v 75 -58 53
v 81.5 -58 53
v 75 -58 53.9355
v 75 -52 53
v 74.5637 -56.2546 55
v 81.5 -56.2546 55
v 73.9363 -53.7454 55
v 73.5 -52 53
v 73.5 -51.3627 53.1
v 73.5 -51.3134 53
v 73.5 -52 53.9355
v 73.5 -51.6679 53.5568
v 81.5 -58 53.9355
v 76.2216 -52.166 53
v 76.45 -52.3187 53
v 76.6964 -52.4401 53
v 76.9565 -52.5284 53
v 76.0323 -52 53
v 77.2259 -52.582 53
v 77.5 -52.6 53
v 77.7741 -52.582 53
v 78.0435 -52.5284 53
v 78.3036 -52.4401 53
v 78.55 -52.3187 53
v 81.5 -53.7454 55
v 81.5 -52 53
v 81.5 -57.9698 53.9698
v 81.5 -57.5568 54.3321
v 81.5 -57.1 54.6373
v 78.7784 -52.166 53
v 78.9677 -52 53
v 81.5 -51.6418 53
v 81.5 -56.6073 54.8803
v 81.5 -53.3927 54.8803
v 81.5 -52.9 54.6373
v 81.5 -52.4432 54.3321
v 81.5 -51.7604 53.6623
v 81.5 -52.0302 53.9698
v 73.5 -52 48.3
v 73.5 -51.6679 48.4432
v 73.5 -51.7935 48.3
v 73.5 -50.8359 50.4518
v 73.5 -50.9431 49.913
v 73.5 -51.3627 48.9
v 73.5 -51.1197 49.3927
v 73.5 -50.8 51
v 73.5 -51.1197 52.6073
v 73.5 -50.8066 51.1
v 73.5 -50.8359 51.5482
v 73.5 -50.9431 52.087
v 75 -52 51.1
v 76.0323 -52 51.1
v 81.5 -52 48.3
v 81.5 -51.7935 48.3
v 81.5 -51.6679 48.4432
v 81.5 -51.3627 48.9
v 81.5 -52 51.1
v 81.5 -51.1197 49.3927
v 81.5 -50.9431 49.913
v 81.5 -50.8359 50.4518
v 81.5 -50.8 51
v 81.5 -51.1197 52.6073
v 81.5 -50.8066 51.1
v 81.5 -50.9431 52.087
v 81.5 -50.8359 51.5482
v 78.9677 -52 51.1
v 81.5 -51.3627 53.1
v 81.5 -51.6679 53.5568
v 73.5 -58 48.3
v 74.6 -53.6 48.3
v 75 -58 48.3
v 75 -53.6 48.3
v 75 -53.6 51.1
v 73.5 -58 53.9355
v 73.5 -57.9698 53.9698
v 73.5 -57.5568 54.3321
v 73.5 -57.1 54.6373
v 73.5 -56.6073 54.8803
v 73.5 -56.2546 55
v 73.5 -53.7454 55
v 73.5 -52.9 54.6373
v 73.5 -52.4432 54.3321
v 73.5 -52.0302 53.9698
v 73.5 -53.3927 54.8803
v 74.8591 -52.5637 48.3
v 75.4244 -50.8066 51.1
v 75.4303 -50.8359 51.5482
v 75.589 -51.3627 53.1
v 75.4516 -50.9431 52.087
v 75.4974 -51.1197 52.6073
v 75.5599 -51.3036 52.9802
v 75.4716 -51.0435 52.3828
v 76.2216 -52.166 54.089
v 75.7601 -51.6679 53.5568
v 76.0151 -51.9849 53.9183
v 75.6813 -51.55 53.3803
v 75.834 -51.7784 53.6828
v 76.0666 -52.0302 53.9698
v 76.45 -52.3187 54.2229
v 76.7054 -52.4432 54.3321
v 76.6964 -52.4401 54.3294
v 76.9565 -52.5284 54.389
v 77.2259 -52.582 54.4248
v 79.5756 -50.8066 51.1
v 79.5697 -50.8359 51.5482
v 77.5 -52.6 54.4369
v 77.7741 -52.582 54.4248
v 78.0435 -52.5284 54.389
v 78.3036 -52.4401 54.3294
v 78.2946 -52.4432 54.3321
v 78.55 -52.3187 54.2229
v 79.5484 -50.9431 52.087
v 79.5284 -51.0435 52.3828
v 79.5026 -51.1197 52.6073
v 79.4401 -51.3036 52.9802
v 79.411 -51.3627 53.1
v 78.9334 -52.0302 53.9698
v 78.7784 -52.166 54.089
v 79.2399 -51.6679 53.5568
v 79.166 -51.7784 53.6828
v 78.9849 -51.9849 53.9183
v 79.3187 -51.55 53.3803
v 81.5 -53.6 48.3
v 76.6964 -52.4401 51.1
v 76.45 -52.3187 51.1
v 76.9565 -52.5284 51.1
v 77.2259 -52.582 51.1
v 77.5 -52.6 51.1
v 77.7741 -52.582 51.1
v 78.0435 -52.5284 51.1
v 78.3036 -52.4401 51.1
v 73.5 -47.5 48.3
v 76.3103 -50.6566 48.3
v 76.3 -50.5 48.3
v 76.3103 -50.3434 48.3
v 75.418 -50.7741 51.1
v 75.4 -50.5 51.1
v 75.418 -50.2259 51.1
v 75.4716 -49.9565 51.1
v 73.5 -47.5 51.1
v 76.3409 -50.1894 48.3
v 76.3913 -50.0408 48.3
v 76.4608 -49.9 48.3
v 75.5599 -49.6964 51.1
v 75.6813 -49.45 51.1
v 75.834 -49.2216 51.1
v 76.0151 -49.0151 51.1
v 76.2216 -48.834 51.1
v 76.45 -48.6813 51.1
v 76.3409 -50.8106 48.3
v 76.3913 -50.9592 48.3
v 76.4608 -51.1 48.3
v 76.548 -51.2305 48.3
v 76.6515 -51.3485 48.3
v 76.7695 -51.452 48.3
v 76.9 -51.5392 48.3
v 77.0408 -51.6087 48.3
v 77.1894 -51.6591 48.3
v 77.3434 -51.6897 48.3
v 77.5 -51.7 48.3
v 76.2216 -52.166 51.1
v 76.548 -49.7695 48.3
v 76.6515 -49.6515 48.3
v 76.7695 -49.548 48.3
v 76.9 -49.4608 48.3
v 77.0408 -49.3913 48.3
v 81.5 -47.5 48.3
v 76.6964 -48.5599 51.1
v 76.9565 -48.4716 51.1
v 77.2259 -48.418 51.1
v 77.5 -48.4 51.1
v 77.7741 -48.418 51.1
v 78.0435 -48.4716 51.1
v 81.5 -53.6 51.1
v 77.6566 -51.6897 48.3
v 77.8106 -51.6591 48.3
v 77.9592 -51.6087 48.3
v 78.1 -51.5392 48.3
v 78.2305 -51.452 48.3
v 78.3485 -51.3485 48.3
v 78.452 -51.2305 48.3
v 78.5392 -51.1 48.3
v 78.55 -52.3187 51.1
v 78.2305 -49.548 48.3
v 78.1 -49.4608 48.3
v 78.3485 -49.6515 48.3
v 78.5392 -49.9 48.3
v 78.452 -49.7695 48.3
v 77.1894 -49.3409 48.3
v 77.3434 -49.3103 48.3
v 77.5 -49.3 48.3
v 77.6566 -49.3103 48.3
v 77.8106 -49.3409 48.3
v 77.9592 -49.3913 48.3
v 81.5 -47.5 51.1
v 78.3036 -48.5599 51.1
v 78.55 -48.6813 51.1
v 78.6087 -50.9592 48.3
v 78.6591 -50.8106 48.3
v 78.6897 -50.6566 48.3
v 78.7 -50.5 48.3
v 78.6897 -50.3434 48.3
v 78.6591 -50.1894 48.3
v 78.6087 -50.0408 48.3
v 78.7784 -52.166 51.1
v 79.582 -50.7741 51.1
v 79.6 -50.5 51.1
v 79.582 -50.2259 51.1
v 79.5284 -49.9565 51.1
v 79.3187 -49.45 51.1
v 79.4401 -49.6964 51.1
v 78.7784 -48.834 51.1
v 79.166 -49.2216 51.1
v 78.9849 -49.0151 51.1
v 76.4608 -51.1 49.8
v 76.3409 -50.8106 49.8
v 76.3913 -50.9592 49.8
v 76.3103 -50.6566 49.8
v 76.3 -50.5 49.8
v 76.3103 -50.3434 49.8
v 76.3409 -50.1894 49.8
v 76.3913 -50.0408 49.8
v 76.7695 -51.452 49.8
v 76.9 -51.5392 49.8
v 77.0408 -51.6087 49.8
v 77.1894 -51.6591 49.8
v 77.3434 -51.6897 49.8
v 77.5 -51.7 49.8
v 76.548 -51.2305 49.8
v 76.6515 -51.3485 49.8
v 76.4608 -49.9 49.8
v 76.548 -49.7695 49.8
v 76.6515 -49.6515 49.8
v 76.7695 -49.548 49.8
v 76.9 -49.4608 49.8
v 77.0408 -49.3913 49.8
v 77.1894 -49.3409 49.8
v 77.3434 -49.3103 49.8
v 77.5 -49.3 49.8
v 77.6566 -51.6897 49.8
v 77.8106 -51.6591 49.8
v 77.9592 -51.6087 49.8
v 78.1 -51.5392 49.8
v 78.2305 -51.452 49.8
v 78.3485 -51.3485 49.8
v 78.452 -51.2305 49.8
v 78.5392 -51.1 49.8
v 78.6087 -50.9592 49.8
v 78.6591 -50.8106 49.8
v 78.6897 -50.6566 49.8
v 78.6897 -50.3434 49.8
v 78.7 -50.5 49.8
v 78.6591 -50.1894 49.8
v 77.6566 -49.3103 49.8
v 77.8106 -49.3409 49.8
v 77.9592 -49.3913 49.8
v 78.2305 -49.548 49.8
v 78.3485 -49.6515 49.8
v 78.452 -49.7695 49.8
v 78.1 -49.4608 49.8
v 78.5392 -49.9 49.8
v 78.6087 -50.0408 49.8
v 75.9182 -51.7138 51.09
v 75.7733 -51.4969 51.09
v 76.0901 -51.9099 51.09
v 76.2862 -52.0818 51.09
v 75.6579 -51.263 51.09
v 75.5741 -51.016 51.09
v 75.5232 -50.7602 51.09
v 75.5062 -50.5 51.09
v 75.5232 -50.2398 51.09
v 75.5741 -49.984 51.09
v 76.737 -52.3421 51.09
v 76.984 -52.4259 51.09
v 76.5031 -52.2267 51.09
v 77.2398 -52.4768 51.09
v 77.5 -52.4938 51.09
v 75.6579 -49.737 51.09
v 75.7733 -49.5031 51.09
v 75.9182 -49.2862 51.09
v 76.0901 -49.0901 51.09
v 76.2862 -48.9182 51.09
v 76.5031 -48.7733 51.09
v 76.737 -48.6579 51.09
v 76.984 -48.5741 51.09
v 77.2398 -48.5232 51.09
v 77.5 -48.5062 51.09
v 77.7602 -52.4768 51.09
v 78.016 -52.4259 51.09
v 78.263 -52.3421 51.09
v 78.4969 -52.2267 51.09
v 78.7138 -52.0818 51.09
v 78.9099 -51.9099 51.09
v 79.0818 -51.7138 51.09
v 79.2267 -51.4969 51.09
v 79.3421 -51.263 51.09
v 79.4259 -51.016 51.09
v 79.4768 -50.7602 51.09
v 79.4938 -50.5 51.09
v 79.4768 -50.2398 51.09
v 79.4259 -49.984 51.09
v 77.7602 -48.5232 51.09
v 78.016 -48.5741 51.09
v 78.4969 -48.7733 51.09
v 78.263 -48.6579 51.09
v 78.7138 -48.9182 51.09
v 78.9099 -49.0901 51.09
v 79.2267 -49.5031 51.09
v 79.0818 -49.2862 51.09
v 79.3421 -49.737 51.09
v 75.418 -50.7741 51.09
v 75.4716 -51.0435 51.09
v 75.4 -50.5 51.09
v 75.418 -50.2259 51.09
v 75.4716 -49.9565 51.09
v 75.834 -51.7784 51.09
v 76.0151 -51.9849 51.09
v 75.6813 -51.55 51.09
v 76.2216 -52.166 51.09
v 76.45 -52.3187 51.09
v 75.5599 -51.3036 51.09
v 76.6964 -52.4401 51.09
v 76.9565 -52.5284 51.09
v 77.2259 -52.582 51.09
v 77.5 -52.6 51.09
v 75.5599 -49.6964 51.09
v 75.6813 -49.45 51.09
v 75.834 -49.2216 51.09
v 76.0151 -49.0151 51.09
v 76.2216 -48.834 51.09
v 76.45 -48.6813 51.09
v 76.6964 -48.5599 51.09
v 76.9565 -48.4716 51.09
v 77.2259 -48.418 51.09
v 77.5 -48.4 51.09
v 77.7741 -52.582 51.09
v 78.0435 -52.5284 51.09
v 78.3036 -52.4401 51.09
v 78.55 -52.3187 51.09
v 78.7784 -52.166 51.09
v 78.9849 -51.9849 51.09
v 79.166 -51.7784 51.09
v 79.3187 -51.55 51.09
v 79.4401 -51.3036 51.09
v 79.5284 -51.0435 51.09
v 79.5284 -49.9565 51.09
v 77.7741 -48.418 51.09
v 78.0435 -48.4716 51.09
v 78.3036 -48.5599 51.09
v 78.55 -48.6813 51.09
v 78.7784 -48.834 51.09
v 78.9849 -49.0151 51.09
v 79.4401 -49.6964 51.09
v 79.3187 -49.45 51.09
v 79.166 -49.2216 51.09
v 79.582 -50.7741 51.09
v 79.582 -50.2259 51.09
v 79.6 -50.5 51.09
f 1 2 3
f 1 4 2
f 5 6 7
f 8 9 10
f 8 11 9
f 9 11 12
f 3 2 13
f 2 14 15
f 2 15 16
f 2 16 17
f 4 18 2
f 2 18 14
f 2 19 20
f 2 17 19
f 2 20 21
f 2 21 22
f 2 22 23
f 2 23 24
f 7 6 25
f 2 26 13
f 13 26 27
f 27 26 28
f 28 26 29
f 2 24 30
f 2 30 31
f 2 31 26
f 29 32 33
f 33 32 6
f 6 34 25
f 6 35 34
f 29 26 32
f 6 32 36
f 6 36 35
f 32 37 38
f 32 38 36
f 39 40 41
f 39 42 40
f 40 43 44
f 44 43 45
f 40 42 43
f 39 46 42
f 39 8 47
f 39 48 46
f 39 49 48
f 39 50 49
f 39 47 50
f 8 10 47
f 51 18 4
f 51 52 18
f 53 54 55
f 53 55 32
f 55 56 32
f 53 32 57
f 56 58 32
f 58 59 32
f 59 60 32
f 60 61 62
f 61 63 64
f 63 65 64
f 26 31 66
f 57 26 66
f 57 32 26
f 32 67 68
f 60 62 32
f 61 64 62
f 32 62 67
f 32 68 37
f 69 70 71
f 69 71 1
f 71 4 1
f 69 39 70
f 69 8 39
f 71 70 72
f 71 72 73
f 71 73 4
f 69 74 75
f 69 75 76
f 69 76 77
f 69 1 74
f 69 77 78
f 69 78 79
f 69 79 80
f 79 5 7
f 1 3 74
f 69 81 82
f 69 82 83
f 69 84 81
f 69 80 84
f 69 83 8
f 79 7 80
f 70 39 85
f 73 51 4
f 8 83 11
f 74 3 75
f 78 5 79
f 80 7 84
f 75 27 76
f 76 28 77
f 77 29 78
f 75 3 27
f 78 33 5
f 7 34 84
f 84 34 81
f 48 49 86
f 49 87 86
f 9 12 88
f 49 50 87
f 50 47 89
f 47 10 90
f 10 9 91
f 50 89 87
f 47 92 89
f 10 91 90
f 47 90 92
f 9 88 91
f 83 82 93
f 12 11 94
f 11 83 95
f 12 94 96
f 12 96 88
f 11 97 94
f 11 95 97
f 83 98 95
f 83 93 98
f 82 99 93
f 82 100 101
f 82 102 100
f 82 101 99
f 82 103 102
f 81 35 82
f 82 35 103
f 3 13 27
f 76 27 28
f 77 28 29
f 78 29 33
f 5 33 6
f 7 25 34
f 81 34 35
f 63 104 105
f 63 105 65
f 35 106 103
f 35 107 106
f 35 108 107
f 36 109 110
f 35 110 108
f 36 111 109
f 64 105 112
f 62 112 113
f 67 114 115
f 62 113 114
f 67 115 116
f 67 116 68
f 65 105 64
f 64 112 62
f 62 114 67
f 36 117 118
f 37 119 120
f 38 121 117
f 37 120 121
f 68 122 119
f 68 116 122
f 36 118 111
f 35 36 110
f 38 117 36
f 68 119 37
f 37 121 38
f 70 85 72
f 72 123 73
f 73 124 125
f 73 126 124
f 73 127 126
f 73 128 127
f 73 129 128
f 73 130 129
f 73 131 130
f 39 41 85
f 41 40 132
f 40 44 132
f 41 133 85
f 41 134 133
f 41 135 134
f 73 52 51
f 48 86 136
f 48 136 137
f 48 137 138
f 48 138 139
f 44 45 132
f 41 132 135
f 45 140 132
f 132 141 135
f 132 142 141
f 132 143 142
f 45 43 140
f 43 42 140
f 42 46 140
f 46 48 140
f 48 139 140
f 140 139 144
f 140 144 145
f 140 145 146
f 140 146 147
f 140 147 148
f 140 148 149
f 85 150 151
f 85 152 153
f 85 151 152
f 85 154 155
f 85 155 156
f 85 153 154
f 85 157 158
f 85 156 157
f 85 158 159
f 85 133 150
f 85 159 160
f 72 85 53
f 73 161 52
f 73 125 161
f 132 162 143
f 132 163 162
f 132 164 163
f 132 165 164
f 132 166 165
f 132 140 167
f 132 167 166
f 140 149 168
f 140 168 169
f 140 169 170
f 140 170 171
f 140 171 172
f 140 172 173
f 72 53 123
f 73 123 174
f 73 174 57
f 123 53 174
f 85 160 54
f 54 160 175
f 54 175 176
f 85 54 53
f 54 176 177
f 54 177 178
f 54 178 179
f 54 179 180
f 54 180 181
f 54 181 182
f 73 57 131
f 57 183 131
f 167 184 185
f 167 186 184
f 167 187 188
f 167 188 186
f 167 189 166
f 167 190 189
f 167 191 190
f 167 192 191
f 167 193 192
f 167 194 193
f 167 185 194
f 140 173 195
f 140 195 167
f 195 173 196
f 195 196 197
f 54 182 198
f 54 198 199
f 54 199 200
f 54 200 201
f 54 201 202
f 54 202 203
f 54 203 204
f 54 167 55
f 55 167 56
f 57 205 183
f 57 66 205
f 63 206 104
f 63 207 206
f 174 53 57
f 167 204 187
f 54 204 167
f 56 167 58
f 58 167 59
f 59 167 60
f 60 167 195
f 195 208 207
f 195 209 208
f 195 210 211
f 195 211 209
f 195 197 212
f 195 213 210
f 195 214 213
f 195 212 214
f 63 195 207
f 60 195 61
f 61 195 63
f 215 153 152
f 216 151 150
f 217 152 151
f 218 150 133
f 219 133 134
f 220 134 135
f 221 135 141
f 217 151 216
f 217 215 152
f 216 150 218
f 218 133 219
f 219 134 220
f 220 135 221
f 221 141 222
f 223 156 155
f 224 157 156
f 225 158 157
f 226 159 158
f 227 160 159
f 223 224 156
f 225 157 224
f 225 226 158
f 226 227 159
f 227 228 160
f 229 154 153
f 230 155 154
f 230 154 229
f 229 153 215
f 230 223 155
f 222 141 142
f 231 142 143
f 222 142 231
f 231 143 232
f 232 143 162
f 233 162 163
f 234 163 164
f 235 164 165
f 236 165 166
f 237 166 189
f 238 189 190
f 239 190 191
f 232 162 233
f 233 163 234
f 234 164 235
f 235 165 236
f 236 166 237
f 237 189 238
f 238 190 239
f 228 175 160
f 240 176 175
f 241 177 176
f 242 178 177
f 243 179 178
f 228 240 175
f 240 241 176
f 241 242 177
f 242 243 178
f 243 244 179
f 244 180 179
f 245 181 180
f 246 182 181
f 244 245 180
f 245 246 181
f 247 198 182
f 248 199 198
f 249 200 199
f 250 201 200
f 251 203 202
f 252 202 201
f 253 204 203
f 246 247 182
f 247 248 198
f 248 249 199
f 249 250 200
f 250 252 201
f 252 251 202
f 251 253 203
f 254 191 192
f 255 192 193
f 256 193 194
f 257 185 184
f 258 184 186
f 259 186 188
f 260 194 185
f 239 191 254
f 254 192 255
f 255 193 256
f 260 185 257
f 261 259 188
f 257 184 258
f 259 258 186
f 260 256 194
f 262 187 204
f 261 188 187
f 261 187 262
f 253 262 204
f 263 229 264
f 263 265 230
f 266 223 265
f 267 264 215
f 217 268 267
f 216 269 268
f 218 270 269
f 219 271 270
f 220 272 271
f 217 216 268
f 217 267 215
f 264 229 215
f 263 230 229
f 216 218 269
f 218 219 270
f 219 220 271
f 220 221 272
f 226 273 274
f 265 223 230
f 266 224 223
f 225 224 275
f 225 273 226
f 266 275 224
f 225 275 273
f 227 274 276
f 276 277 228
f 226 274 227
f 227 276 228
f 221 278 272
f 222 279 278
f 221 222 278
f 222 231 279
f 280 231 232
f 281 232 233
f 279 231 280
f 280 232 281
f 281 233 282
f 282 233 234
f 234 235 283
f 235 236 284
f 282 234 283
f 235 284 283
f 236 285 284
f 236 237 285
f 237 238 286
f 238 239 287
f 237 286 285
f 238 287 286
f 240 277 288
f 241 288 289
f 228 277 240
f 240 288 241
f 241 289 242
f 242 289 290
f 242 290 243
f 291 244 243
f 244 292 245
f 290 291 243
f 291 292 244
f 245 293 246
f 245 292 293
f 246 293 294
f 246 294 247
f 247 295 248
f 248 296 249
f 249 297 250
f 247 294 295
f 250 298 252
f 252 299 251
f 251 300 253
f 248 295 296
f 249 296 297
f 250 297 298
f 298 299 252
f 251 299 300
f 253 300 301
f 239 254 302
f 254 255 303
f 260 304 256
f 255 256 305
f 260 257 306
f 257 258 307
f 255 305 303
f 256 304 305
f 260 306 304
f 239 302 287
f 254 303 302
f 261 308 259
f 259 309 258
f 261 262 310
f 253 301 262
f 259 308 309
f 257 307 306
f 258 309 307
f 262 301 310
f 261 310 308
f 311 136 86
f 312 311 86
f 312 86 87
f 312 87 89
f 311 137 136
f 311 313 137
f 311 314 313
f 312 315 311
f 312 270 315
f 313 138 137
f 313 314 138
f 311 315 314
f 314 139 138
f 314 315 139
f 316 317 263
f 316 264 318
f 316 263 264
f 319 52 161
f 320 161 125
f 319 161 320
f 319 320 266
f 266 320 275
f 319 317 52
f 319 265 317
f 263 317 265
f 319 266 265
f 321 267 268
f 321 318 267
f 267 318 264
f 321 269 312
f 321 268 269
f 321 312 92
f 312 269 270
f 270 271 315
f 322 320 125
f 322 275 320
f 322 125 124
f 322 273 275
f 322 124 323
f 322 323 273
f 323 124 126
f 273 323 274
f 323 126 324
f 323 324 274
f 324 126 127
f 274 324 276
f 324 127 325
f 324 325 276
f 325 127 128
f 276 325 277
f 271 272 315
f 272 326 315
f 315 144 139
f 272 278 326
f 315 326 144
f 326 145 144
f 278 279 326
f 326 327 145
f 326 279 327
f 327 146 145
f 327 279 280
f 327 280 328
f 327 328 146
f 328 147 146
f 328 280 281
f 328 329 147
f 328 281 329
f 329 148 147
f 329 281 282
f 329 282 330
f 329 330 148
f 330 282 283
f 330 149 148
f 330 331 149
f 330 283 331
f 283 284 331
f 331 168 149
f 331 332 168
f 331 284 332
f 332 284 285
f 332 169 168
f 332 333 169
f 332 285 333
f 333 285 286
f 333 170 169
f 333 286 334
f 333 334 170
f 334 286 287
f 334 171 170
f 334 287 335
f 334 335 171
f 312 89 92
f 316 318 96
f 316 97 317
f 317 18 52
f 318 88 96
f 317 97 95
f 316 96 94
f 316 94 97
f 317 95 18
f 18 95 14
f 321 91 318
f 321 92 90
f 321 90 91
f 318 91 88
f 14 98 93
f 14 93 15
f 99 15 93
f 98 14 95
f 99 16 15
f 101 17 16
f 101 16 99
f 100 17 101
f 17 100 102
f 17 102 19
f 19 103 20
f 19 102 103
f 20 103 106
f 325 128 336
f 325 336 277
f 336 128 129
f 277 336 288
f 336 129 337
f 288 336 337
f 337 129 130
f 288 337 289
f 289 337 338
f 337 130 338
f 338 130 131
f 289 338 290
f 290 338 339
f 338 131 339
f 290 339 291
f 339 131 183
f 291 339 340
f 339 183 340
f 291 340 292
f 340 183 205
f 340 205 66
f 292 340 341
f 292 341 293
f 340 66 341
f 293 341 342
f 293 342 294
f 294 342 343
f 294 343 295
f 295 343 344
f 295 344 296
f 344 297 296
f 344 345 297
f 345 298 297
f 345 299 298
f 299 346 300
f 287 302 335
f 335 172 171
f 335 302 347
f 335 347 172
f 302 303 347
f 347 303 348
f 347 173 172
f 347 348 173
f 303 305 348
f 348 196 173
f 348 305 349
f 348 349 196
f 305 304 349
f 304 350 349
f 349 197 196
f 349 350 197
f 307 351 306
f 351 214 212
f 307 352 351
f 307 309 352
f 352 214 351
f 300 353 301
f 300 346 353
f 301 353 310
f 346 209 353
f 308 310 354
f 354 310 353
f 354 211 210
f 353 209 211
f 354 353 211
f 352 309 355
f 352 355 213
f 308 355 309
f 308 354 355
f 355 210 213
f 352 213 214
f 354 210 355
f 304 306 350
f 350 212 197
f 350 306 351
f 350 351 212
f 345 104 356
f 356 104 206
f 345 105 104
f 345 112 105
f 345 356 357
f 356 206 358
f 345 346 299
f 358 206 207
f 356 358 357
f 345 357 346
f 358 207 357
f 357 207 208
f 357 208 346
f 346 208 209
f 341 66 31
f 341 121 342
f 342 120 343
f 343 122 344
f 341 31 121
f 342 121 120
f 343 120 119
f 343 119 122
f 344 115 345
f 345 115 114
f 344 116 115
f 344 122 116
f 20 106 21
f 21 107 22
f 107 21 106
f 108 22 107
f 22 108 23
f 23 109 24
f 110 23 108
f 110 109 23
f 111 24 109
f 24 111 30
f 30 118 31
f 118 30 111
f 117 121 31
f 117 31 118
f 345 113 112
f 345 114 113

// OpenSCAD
// file: ../../../cad/v3/hardware.scad
include <params.scad>
use <enclosure.scad>
// PROVISIONAL purchased component envelopes; not production part drawings.
module motor() {
 union() {
  translate([screw_x-6,motor_front-motor_l,motor_bottom]) cube([12,motor_l,10]);
  yrod(screw_x,motor_front-0.1,axis_z,shaft_d,shaft_l+0.1);
  for(x=[screw_x-3,screw_x+3]) translate([x-0.5,motor_front-motor_l-2,motor_bottom+4.5]) cube([1,2.1,1]);
 }
}
module shaft() { yrod(screw_x,motor_front,axis_z,shaft_d,shaft_l); }
module drive_nut(t=0) {
 difference() {
  translate([screw_x,carriage_back+t+nut_slot_y+0.1,axis_z]) rotate([-90,0,0]) union() {
   cylinder(d=nut_af/cos(30),h=nut_height,$fn=6);
   cylinder(d=nut_flange_d,h=nut_flange_t);
  }
  yrod(screw_x,carriage_back+t+nut_slot_y,axis_z,shaft_d+0.2,nut_height+0.2);
 }
}
module battery_holder(raise=0) {
 // Conservative single envelope including cell, contacts and holder.
 translate([93.2,-52,4.5+raise]) cube([22,74,21]);
}
module esp() {
 union() {
  translate([77.5,28,8.3]) cube([17.8,22.5,1.2]);
  translate([78.5,29,9.5]) cube([15.8,20.5,5]);
  translate([81.5,47,9.5]) cube([9,5,3.3]);
 }
}
module power_board() { translate([99,29,8.3]) cube([15,20,7.2]); }
module bridge_board() { translate([98.5,29,20.3]) cube([15,20,7]); }
module oled() {
 union() {
  translate([87.6,53.5,21.5]) cube([27.8,1.6,27.3]);
  translate([88.15,55.1,25]) cube([26.7,1.4,19.3]);
  translate([96.5,50.5,46]) cube([10,3,2.8]);
 }
}
module button() {
 union() {
  xrod(button_panel_x-button_body_l,button_y,button_z,button_body_d,button_body_l);
  xrod(button_panel_x,button_y,button_z,button_flange_d,2);
  xrod(button_panel_x+2,button_y,button_z,12.9,button_face_l-2);
  // Candidate fastening nut envelope; actual nut diameter/thickness to measure.
  difference() {
   xrod(button_panel_x-6,button_y,button_z,17.8,3);
   xrod(button_panel_x-6.1,button_y,button_z,button_hole_d,3.2);
  }
  // Two terminals only; solder and bend radius need physical confirmation.
  for(y=[button_y-2.425,button_y+2.425])
   translate([button_panel_x-button_body_l-button_terminal_l,y-.3,button_z-1]) cube([button_terminal_l,.6,2]);
 }
}
module acrylic() { translate([window_x0-2,window_y0-2,window_pane_z]) cube([window_x1-window_x0+4,window_y1-window_y0+4,window_pane_t]); }
module hinge_pin() { xrod(hinge_pin_x,hinge_y,hinge_z,2,hinge_pin_len); }
module thread_insert(x,y,z) {
 difference() {
  zhole(x,y,z,insert_od,insert_len);
  zhole(x,y,z-.1,2.05,insert_len+.2);
 }
}
module inserts_fixed() {
 for(p=battery_screws) thread_insert(p[0],p[1],2.9);
 for(x=keeper_x) thread_insert(x,keeper_y,44.3);
}
module inserts_lid() {
 for(p=window_clamps) thread_insert(p[0],p[1],window_ear_top);
}
module battery_connector() { translate([91.5,22,12.5]) cube([4.3,5,5]); }
module motor_pads() {
 // 0.3 mm compressed adhesive shim specification, not unspecified empty space.
 translate([78.5,motor_front-motor_l+.1,motor_bottom-0.3]) cube([12,motor_l-.2,0.3]);
 translate([78.5,motor_front-motor_l+.1,motor_top]) cube([12,motor_l-.2,0.3]);
 difference() {
  translate([78.5,-15,motor_bottom]) cube([12,0.3,10]);
  yrod(screw_x,-15.1,axis_z,4.7,0.6);
 }
 // Rear pad clears the two solder terminals.
 difference() {
  translate([78.5,motor_front-motor_l-.3,motor_bottom]) cube([12,0.3,10]);
  translate([80,motor_front-motor_l-.4,motor_bottom+4]) cube([9,0.5,2]);
 }
}
module board_pads() {
 translate([77.5,28,7.4]) cube([17.8,22.5,0.9]);
 translate([99,29,7.4]) cube([15,20,0.9]);
 translate([98.5,29,19.8]) cube([15,20,0.5]);
}

// Illustrative screw envelopes. Intentional pilot-thread interference is excluded
// from solid collision assertions. They remain in preview, BOM and total bounds.
module screw_down(x,y,top,len,d=2,flush=false) {
 color([0.45,0.47,0.5]) {
  zhole(x,y,top-len,d,len);
  if(flush) translate([x,y,top-1.3]) cylinder(d1=d,d2=4,h=1.3);
  else zhole(x,y,top,d==3?5.5:3.6,d==3?2:1.4);
 }
}
// Canonical fastener table: x,y,z,length,diameter,flush,rotationX,headless,owners.
// Preview and interference verification consume this SAME table.
// Stable connection names: keep existing names when adapting module brackets.
function fastener_ids(kind="fixed") = kind=="drive" ? ["F-nut-cap-left","F-nut-cap-right"] :
 kind=="lid" ? ["F-latch-left","F-latch-right","F-window-rear-left","F-window-rear-right","F-window-front-left","F-window-front-right"] :
 ["F-lock-rear-left","F-lock-rear-right","F-lock-front-left","F-lock-front-right",
 "F-guide-rear-left","F-guide-rear-right","F-guide-front","F-motor-left","F-motor-right",
 "F-tray-left","F-tray-right","F-deck-left","F-deck-right","F-esp-left","F-esp-right",
 "F-driver-left","F-driver-right","F-oled-left","F-oled-right",
 "F-battery-rear-left","F-battery-rear-right","F-battery-front-left","F-battery-front-right",
 "F-hinge-left","F-hinge-right"];
function fastener_specs(kind="fixed",t=0) = kind=="drive" ?
 [for(x=[screw_x-4.5,screw_x+4.5]) [x,carriage_back+t-0.2,46,6,2,false,0,false,["nut_cap","nut_carriage"]]] :
 kind=="lid" ? concat(
 [for(x=[93.5,112.5]) [x,8.5,45.2,8,3,false,180,false,["latch_retainer","lid"]]],
 [for(p=window_clamps) [p[0],p[1],window_inner_z,6,2,true,180,false,["window_grille","lid"]]]) :
 concat(
 [for(p=lock_mounts) [p[0],p[1],32.4,6,2,false,0,false,["lock_base","base_box"]]],
 [for(p=guide_screws) [p[0],p[1],44.9,8,2,false,0,false,["guide_cap","lock_base"]]],
 [for(p=motor_screws) [p[0],p[1],motor_clamp_z+2,8,2,false,0,false,["motor_clamp","lock_base"]]],
 [for(p=tray_screws) [p[0],p[1],7.4,4,2,false,0,false,["electronics_tray","base_box"]]],
 [for(p=deck_screws) [p[0],p[1],19.8,6,2,false,0,false,["upper_deck","electronics_tray"]]],
 [for(x=[76.2,96.7]) [x,39,16.8,6,2,false,0,false,["esp_clip","electronics_tray"]]],
 [for(x=[97,115]) [x,38,29.6,6,2,false,0,false,["upper_clip","upper_deck"]]],
 [for(x=[86.8,115.8]) [x,56.3,51,6,2,true,0,false,["oled_bridge","base_box"]]],
 [for(p=battery_screws) [p[0],p[1],0,8,2,true,180,false,["battery_hatch","base_box"]]],
 [for(i=[0:1]) [keeper_x[i],keeper_y,51.1,6,2,true,0,false,[i==0?"hinge_guard_left":"hinge_guard_right","base_box","inserts_fixed"]]]);
module render_screw(s) {
 translate([s[0],s[1],s[2]]) rotate([s[6],0,0])
 if(s[7]) zhole(0,0,-s[3],s[4],s[3]);
 else screw_down(0,0,0,s[3],s[4],s[5]);
}
module fixed_fasteners() { for(s=fastener_specs("fixed")) render_screw(s); }
module moving_fasteners(t=0) { for(s=fastener_specs("drive",t)) render_screw(s); }
module lid_fasteners() { for(s=fastener_specs("lid")) render_screw(s); }
// file: ../../../cad/v3/electronics.scad
include <params.scad>

module electronics_tray() {
 nominal_difference() {
  union() {
   cube_at([74.5,25.5,5.4],[42,27,2]);
   cube_at([74.5,25.5,7.3],[2.5,27,0.7]);
   cube_at([114,25.5,7.3],[2.5,27,0.7]);
   for(p=deck_screws) translate([p[0],p[1],7.3]) cylinder(r=1.3,h=10.7);
   for(x=[76.2,96.7]) cube_at([x-1.2,37,7.3],[2.4,4,7.5]);
  }
  for(p=tray_screws) pilot(p,5.2,8.2,2.4);
  for(x=[90,117]) zhole(x,24,5.2,6.4,3.2);
  for(p=deck_screws) pilot(p,13,18.2,1.7);
  for(x=[76.2,96.7]) zhole(x,39,9.8,1.7,5.2);
  // Tie slots for the lower power board; underside remains accessible off-box.
  for(x=[99.5,112.75]) cube_at([x,33,5.2],[tie_slot_width,8,3.2]);
 }
}
module upper_deck() {
 nominal_difference() {
  union() {
   cube_at([96,25.3,18],[21,27.2,1.8]);
   cube_at([96,27,19.7],[2.3,24,1.8]);
   cube_at([114.3,27,19.7],[2.7,24,1.8]);
   for(x=[97,115]) cube_at([x-1.3,36,19.7],[2.6,4,7.9]);
  }
  for(p=deck_screws) pilot(p,17.8,20,2.4);
  zhole(96.7,39,17.8,4,0.6);
  for(x=[97,115]) zhole(x,38,22.3,1.7,5.5);
 }
}
module esp_clip() {
 nominal_difference() {
  cube_at([74.5,37,14.8],[24,4,2]);
  for(x=[76.2,96.7]) zhole(x,39,14.6,2.4,2.4);
 }
}
module upper_clip() {
 nominal_difference() {
  cube_at([95.5,36,27.6],[21.5,4,2]);
  for(x=[97,115]) zhole(x,38,27.4,2.2,2.4);
 }
}
module oled_bridge() {
 nominal_difference() {
  cube_at([84.3,52.5,49.2],[34,6.1,1.8]);
  for(x=[86.8,115.8]) {
   zhole(x,56.3,49,2.4,2.2);
   countersink(x,56.3,49.7,2.4,4,1.3);
  }
 }
}
// file: ../../../cad/v3/lock.scad
include <params.scad>

module lock_base() {
 nominal_difference() {
  union() {
   cube_at([75,-46,lock_floor],[41,68,3]);
   // Continuous independent bolt support: bed, keyed rail, removable roof.
   cube_at([91,-19,lock_floor_top],[20,24.5,guide_bottom-lock_floor_top]);
   cube_at([bolt_x-key_w/2,-19,key_z0],[key_w,24.5,key_z1-key_z0]);
   for(p=guide_screws) translate([p[0],p[1],lock_floor_top-0.01]) cylinder(r=2.3,h=guide_top-lock_floor_top+0.01);
   for(p=motor_screws) translate([p[0],p[1],lock_floor_top-0.01]) cylinder(r=2.2,h=motor_clamp_z-lock_floor_top+0.01);
   // Motor cradle and front locating shoulder; clamp presses through thin pads.
   cube_at([77.2,-41.8,32.4],[14.6,27.5,motor_bottom-0.3-32.4]);
   cube_at([77.2,-16,32.4],[14.6,2.3,motor_clamp_z-32.4]);
   // Blind front socket: usable bore ends Y=19.8; last 1 mm is solid.
   cube_at([bolt_x-6,14.8,32.4],[12,6,11.6]);
  }
  // Conservative 25x12x10 body; includes the 2.5mm output offset.
  cube_at([screw_x-motor_w/2-0.3,motor_front-motor_l-0.3,motor_bottom-0.3],[motor_w+0.6,motor_l+0.6,motor_h+0.6]);
  yhole(screw_x,-16.3,axis_z,4.7,4);
  // Top-open U seat permits vertical insertion of motor + threaded drive.
  cube_at([screw_x-2.35,-16.3,axis_z],[4.7,4,motor_clamp_z-axis_z+0.2]);
  cube_at([bolt_x-latch_hole/2,13.8,axis_z-latch_hole/2],[latch_hole,6,latch_hole]);
  for(p=lock_mounts) pilot(p,29.2,32.6,2.4);
  for(p=guide_screws) pilot(p,33.2,43.1);
  for(p=motor_screws) pilot(p,motor_clamp_z-6,motor_clamp_z+0.2);
  // Flat reusable rail for future mechanical feedback adapters (SKU pending).
  for(y=[-12,2]) for(x=[112,115]) cube_at([x,y,29.2],[tie_slot_width,5,3.5]);
  // Wiring channels; no closed tunnel around the actuator.
  cube_at([110,15,29.2],[3,7.2,3.5]);
 }
}
module guide_cap() {
 nominal_difference() {
  cube_at([92,-20.5,guide_top],[23,26,guide_cap_t]);
  for(p=guide_screws) pilot(p,42.7,45.1,2.4);
 }
}
module motor_clamp() {
 nominal_difference() {
  cube_at([73.8,-35,motor_clamp_z],[21.4,16,2]);
  for(p=motor_screws) pilot(p,motor_clamp_z-0.2,motor_clamp_z+2.2,2.4);
  cube_at([90.8,-20.7,motor_clamp_z-0.2],[4.6,1.8,2.4]);
 }
}
module bolt_raw(t=0) {
 rear=bolt_back+t;
 nominal_difference() {
  union() {
   cube_at([bolt_x-body_w/2,rear-4,axis_z-body_w/2],[body_w,body_l+4,body_w]);
   cube_at([bolt_x-3,rear+body_l,axis_z-3],[6,tongue_l-taper_l+0.01,6]);
   translate([bolt_x,rear+body_l+tongue_l-taper_l,axis_z]) rotate([-90,0,0])
    linear_extrude(height=taper_l,scale=5/6) square([6,6],center=true);
   // Fork overlaps the main body; lateral/vertical float around the drive finger.
   cube_at([92,rear,axis_z-body_w/2],[7.6,6,body_w]);
  }
  cube_at([91,rear+1.7,35.2],[8.6,2.6,5.6]);
  cube_at([bolt_x-(key_w+0.6)/2,rear-4.1,33.2],[key_w+0.6,body_l+4.2,1.6]);
 }
}
module bolt(t=0,shift=0) { translate([0,0,shift]) bolt_raw(t); }
module nut_carriage(t=0) {
 rear=carriage_back+t;
 nominal_difference() {
  union() {
   cube_at([screw_x-7,rear-2,33.4],[13,10,10.6]);
   cube_at([screw_x+4.5,rear-1.5,36],[8.7,2,4]);
  }
  yhole(screw_x,rear-3,axis_z,shaft_d+0.4,12);
  translate([screw_x,rear+nut_slot_y,axis_z]) rotate([-90,0,0]) {
   cylinder(d=nut_slot_d,h=nut_slot_t,$fn=6);
   cylinder(d=nut_flange_d+0.4,h=nut_flange_t+0.2);
  }
  // Wide open top access for the nut: larger than its circumdiameter.
  cube_at([screw_x-5.3,rear+nut_slot_y,axis_z],[10.6,nut_slot_t,6.2]);
  for(x=[screw_x-4.5,screw_x+4.5]) zhole(x,rear-0.2,39.5,1.7,4.7);
 }
}
module nut_cap(t=0) {
 rear=carriage_back+t;
 nominal_difference() {
  cube_at([screw_x-6.5,rear-2,44],[12.5,10,2]);
  for(x=[screw_x-4.5,screw_x+4.5]) zhole(x,rear-0.2,43.8,2.4,2.4);
 }
}
module fit_bar() { cube([tongue_w,tongue_w,25]); }
module fit_gauge() {
 nominal_difference() {
  cube([30,14,8]);
  for(i=[0:2]) cube_at([2+i*9,3,-0.1],[6.4+i*0.2,6.4+i*0.2,8.2]);
 }
}
// file: ../../../cad/v3/enclosure.scad
include <params.scad>

module base_box() {
 nominal_difference() {
  union() {
   nominal_difference() {
    linear_extrude(height=shell_top) rounded_rect(L,W,4);
    translate([0,0,floor_t]) linear_extrude(height=49) rounded_rect(L-2*wall,W-2*wall,1);
   }
   cube_at([70.5,-57,2.9],[3,114,48.1]);
   // Stationary rear header reaches the same closed height as the lid.
   intersection() {
    cube_at([-117,-60,47],[234,9,8]);
    union() { cube_at([-118,-61,46],[236,11,5]); xrod(-118,hinge_y,hinge_z,8,236); }
   }
   for(k=fixed_knuckles) xrod(k[0],hinge_y,hinge_z,hinge_od,k[1]-k[0]);
   for(x=keeper_x) cube_at([x-4,-54,43.5],[8,6.5,4.8]);
   // Battery chamber: side/end walls and a fixed ceiling connected to outer wall.
   cube_at([90,-54.5,2.9],[2.7,79,23.1]);
   cube_at([90,-54.5,2.9],[30,2.2,23.1]);
   cube_at([90,22.3,2.9],[30,2.2,23.1]);
   cube_at([90,-54.5,26],[30,79,3.4]);
   for(p=battery_screws) translate([p[0],p[1],2.8]) cylinder(r=3,h=5.5);
   for(p=lock_mounts) if(p[0]<90) translate([p[0],p[1],2.9]) cylinder(r=3,h=26.5);
   for(p=tray_screws) translate([p[0],p[1],2.9]) cylinder(r=2.3,h=2.5);
   // OLED bottom stop and two connected side rails.
   cube_at([85.3,53,19.2],[32.4,4.1,2]);
   cube_at([85.3,53,21.1],[2.3,4.1,28.1]);
   cube_at([115.4,53,21.1],[2.3,4.1,28.1]);
   // Recessed side-wall panel: 5.7mm button face stays inside X=120.
   difference() {
    xrod(button_panel_x-3,button_y,button_z,21,120-(button_panel_x-3));
    xrod(button_panel_x,button_y,button_z,18.8,120-button_panel_x+.1);
   }

  }
  // A continuous bore is essential: otherwise the fixed header traps the pin.
  xhole(-120.1,hinge_y,hinge_z,hinge_bore,240.2);
  // Moving hinge knuckles and webs get a rectangular swept-side relief.
  for(k=moving_knuckles) cube_at([k[0]-0.3,-60.2,46.6],[k[1]-k[0]+0.6,9.8,9]);
  for(x=keeper_x) {
   cube_at([x-4.3,-58.3,48.3],[8.6,11.1,7]);
   zhole(x,keeper_y,43.8,2.4,4.6);
   let($feature_kind="insert") zhole(x,keeper_y,44.2,insert_hole_d(),4.2);
  }
  // Battery extraction aperture, and a shallow seat for the flush service plate.
  cube_at([92.7,-52.3,-0.1],[22.6,74.6,8.6]);
  cube_at([87.7,-56.3,-0.1],[31.6,82.6,3]);
  for(p=battery_screws) {
   pilot(p,2.7,8.4,2.4);
   let($feature_kind="insert") zhole(p[0],p[1],2.8,insert_hole_d(),4.1);
  }
  for(p=lock_mounts) pilot(p,26.2,29.6,1.7);
  for(p=tray_screws) pilot(p,3.1,5.6,1.7);
  // Battery connector passage enters the electronics bay, not the actuator above.
  cube_at([91,21.8,12],[7,3.4,6]);
  // Front optical window / recessed button. There is deliberately no USB hole.
  cube_at([87.7,56.7,24.5],[27.6,3.6,20.5]);
  xhole(button_panel_x-3.1,button_y,button_z,button_hole_d,3.2);
  xhole(button_panel_x,button_y,button_z,18.8,120-button_panel_x+.1);
  // PCB insertion channels; stop ledge remains below them.
  cube_at([87.3,53.2,21.3],[28.4,2.2,28.2]);
  cube_at([84.2,52.4,49.2],[34.2,6.3,1.9]);
  for(x=[86.8,115.8]) zhole(x,56.3,43,1.7,6.5);
 }
}
module lid() {
 union() {
 nominal_difference() {
  union() {
   cube_at([-120,-50.5,lid_bottom],[240,110.5,H-lid_bottom]);
   for(k=moving_knuckles) {
    xrod(k[0],hinge_y,hinge_z,hinge_od,k[1]-k[0]);
    cube_at([k[0],-53,51.4],[k[1]-k[0],4,3.6]);
   }
   // Internal T-head receiver and inside-only retainer screw lands.
   cube_at([92,3,46.7],[22,11,4.8]);
   // Inside-only hard stops carry screw preload instead of crushing the pane.
   for(p=window_clamps) cube_at([p[0]-9,p[1]-3.5,window_ear_top],[18,7,lid_bottom+0.1-window_ear_top]);
  }
  for(k=moving_knuckles) xhole(k[0]-0.1,hinge_y,hinge_z,hinge_bore,k[1]-k[0]+0.2);
  cube_at([window_x0,window_y0,window_ear_top-0.1],[window_x1-window_x0,window_y1-window_y0,H-window_ear_top+0.2]);
  // Interior rebate clears the pane; the outside grille closes it.
  cube_at([window_x0-3,window_y0-3,window_ear_top-0.1],[window_x1-window_x0+6,window_y1-window_y0+6,window_outer_z-window_ear_top+0.1]);
  cube_at([94.7,5.7,46.6],[16.6,5.6,3.7]);
  cube_at([97.2,5.7,45.8],[11.6,5.6,4.5]);
  for(x=[93.5,112.5]) zhole(x,8.5,45.8,2.4,8.4);
  for(p=window_clamps) {
   zhole(p[0],p[1],window_ear_top-0.1,2.4,54.2-window_ear_top+0.1);
   let($feature_kind="insert") zhole(p[0],p[1],window_ear_top-0.1,insert_hole_d(),4.1);
  }
 }
 // Union after cutting the opening: five short-span ribs join both edges.
 translate([0,0,window_outer_z]) linear_extrude(height=H-window_outer_z) window_grid_2d();
 }
}
module latch() {
 nominal_difference() {
  union() {
   cube_at([bolt_x-5.5,latch_y,latch_z0],[11,5,43.1-latch_z0]);
   cube_at([bolt_x-latch_neck_w/2,latch_y,43],[latch_neck_w,5,2.1]);
   cube_at([bolt_x-5.5,latch_y,45],[11,5,2.1]);
   cube_at([bolt_x-8,latch_y,47],[16,5,3]);
  }
  cube_at([bolt_x-latch_hole/2,latch_y-0.1,axis_z-latch_hole/2],[latch_hole,5.2,latch_hole]);
 }
}
module latch_retainer() {
 nominal_difference() {
  cube_at([92,3,retainer_z],[22,11,retainer_t]);
  cube_at([97.2,5.7,45],[11.6,5.6,2]);
  for(x=[93.5,112.5]) zhole(x,8.5,45,3.4,2);
 }
}
module window_grid_2d() {
 union() {
  nominal_difference() {
   translate([window_x0-3,window_y0-3]) square([window_x1-window_x0+6,window_y1-window_y0+6]);
   translate([window_x0,window_y0]) square([window_x1-window_x0,window_y1-window_y0]);
  }
  for(x=window_bar_x) {
   translate([x-window_bar_w/2,window_y0-2]) square([window_bar_w,window_y1-window_y0+4]);
   // Concave radius at all four rib roots, tangent to rib and window frame.
   for(side=[-1,1]) for(end=[0,1])
    translate([x+side*window_bar_w/2,end?window_y1:window_y0]) scale([side,end?-1:1])
     nominal_difference() { square([window_root_r,window_root_r]); translate([window_root_r,window_root_r]) circle(r=window_root_r); }
  }
 }
}
module window_grille() {
 nominal_difference() {
  union() {
   translate([0,0,window_inner_z]) linear_extrude(height=window_inner_t) window_grid_2d();
   for(p=window_clamps) cube_at([p[0]-9,p[1]-3.5,window_inner_z],[18,7,window_ear_t]);
  }
  for(p=window_clamps) {
   zhole(p[0],p[1],window_inner_z-0.1,2.4,window_inner_t+0.2);
   countersink(p[0],p[1],window_inner_z-0.01,4.2,2.4,1.31);
  }
 }
}
module battery_hatch() {
 nominal_difference() {
  union() {
   cube_at([88,-56,0],[31,82,2.6]);
   for(x=[96,112]) for(y=[-47,17]) cube_at([x-2,y-2,2.5],[4,4,1.8]);
  }
  for(p=battery_screws) {
   pilot(p,-0.1,2.8,2.4);
   countersink(p[0],p[1],-0.01,4.2,2.4,1.3);
  }
 }
}
module hinge_guard(side=-1) {
 x=side<0?keeper_x[0]:keeper_x[1];
 stop=side<0?hinge_pin_x-pin_end_play-keeper_wall:hinge_pin_x+hinge_pin_len+pin_end_play;
 nominal_difference() {
  union() {
   intersection() {
    union() {
     cube_at([x-4,-58,53],[8,7.2,2]);
     cube_at([x-4,-52,48.3],[8,1.2,6.7]);
     // End cheek remains within the fixed hinge's radial envelope.
     cube_at([stop,-58,48.3],[keeper_wall,6,6.7]);
    }
    xrod(x-4.1,hinge_y,hinge_z,8.4,8.2);
   }
   cube_at([x-4,-53.6,48.3],[8,6.1,2.8]);
  }
  zhole(x,keeper_y,48.1,2.4,3.2);
  countersink(x,keeper_y,49.8,2.4,4,1.3);
  zhole(x,keeper_y,51.09,4.2,4);
 }
}

module insert_coupon() {
 nominal_difference() {
  cube([36,12,6]);
  for(i=[0:2]) {
   zhole(6+i*12,6,1.8,2.8+i*.1,4.3);
   countersink(6+i*12,6,5.6,2.8+i*.1,3.5,.5);
  }
 }
}
module keeper_insert_coupon() {
 nominal_difference() {
  cube([8,6.5,4.8]);
  zhole(4,3.5,.3,2.4,4.6);
  zhole(4,3.5,.7,insert_pilot_d,4.2);
 }
}
module window_insert_coupon() {
 nominal_difference() {
  cube([18,7,5.1]);
  zhole(9,3.5,-.1,2.4,4.4);
  zhole(9,3.5,-.1,insert_pilot_d,4.1);
 }
}
module hinge_bore_coupon() {
 nominal_difference() {
  cube([20,30,8]);
  for(i=[0:2]) xhole(-.1,5+i*10,4,2.2+i*.2,20.2);
 }
}
// file: ../../../cad/v3/references.scad
// Generated from engineering/references.json; do not edit.
// SHA256 f9069af00d99415f6bf80c07423463d1202e891299ade11124e069a9ba9990c0
// Visual corner/platform profiles are approximate. Dimensions are nominal mm.
module reference_phone() {
 translate([-23,0,0]) union() {
  translate([0,0,9.43]) linear_extrude(height=8.75)
   offset(r=12) square([139.4,54.0],center=true);
  translate([-55.7,0,6.88])
   linear_extrude(height=2.55) offset(r=9) square([28,56],center=true);
  translate([-67.33,-24.630000000000003,5]) cylinder(d=16.2,h=1.88,$fn=64);
  translate([-48.09,-24.630000000000003,5]) cylinder(d=16.2,h=1.88,$fn=64);
  translate([-57.71000000000001,-6.640000000000001,5]) cylinder(d=16.2,h=1.88,$fn=64);
  translate([-50.870000000000005,-39.45,12.475]) cube([6.9,.45,2.66]);
  translate([-38.870000000000005,-39.45,12.475]) cube([11.2,.45,2.66]);
  translate([-24.67,-39.45,12.475]) cube([11.2,.45,2.66]);
  translate([-35.02,39.0,12.475]) cube([17.7,.45,2.66]);
  translate([21.56999999999999,39.0,12.475]) cube([17.1,.45,2.66]);
 }
}
module reference_card() {
 translate([-7,0,18.18])
 linear_extrude(height=0.76) offset(r=3.18)
 square([79.24,47.62],center=true);
}
// file: ../../../cad/v3/params.scad
// TetherLock V3 STRUCTURAL PROTOTYPE. mm / degrees. Hardware SKUs NOT frozen.
// World: X long direction; +Y front; Z bottom=0. Closed assembly <=240x120x55.
$fn=48;
L=240; W=120; H=55;
wall=3; floor_t=3; shell_top=51; lid_bottom=51.4;
divider_x=72; divider_t=3;
hinge_y=-55; hinge_z=51; hinge_od=8; hinge_bore=2.4;
fixed_knuckles=[[-102,-90],[-30,-18],[42,54]];
moving_knuckles=[[-89.6,-78],[-17.6,-6],[54.4,66]];
hinge_pin_x=-107; hinge_pin_len=180;
keeper_x=[-108,77.5]; keeper_y=-50.5;
pin_end_play=0.5; keeper_wall=1.5;
insert_od=3.2; insert_len=4; insert_pilot_d=2.9;
$print_bores=false;
function insert_hole_d() = $print_bores ? insert_pilot_d : insert_od+0.05;
stroke=14;
bolt_x=103; axis_z=38; bolt_back=-14.5; carriage_back=-11;
body_w=9.2; body_l=6; tongue_w=6; tongue_l=13.5; taper_l=0.8;
guide_clearance=0.3;
screw_x=84.5; motor_front=-15;
// Seller image: gearbox 9; motor text 16 vs drawing 15; reserve 25 total.
// Output offset 2.5: rotate motor about its shaft so body is ABOVE the axis.
motor_l=25; motor_w=12; motor_h=10; motor_axis_offset=2.5;
shaft_l=55; shaft_d=4; shaft_pitch=0.7; shaft_length_tolerance=1;
motor_bottom=axis_z+motor_axis_offset-motor_h/2;
motor_top=motor_bottom+motor_h; motor_clamp_z=motor_top+0.3;
// Supplier flange nut NOT dimensioned: conservative adjustable candidate.
nut_af=7; nut_flange_d=10; nut_height=5; nut_flange_t=1;
// R16-503 drawing; threaded mounting diameter remains provisional 16mm.
button_y=30; button_z=40.5; button_panel_x=114;
button_hole_d=16.4; button_body_d=15.8; button_flange_d=17.8;
button_body_l=18.3; button_terminal_l=6; button_face_l=5.7;
tie_width=2.5; tie_slot_width=3.0;
lock_floor=29.4; lock_floor_top=32.4;
guide_bottom=33.1; guide_top=42.9; guide_cap_t=2;
key_w=2.8; key_z0=33.0; key_z1=34.5;
nut_slot_d=nut_af/cos(30)+0.4; nut_slot_y=1.5; nut_slot_t=nut_height+0.4;
latch_y=6; latch_t=5; latch_hole=6.8;
latch_z0=32.6; latch_neck_w=6;
retainer_z=45.2; retainer_t=1.5;
window_x0=-100; window_x1=45; window_y0=-38; window_y1=40;
window_clamps=[[-94,-43],[39,-43],[-94,45],[39,45]];
window_bar_x=[-76,-52,-28,-4,20]; window_bar_w=5; window_root_r=2;
window_outer_z=52; window_pane_t=1.5;
window_pane_z=window_outer_z-window_pane_t;
// Pane contact and screw ears are independent: preload is carried by the ears.
window_inner_z=47.4; window_inner_t=3.1;
window_inner_top=window_inner_z+window_inner_t;
window_ear_t=2.5; window_ear_top=window_inner_z+window_ear_t;
assert(window_inner_z>=47,"Window grille must preserve storage headroom");
lock_mounts=[[77,-43],[113,-43],[77,19],[113,19]];
guide_screws=[[93.5,-18],[114,-18],[114,-2]];
motor_screws=[[76,-27],[93,-27]];
battery_screws=[[90,-54],[117,-54],[90,24],[117,24]];
tray_screws=[[76,27],[115,51]];
deck_screws=[[97.5,27],[115,50.8]];
print_parts=["base_box","lid","lock_base","guide_cap","motor_clamp",
 "bolt","nut_carriage","nut_cap","latch","latch_retainer","window_grille",
 "battery_hatch","electronics_tray","upper_deck","esp_clip","upper_clip",
 "oled_bridge","hinge_guard_left","hinge_guard_right","fit_bar","fit_gauge",
 "insert_coupon","keeper_insert_coupon","window_insert_coupon","hinge_bore_coupon"];
assembly_parts=["base_box","lid","lock_base","guide_cap","motor_clamp",
 "bolt","nut_carriage","nut_cap","latch","latch_retainer",
 "window_grille",
 "battery_hatch","electronics_tray","upper_deck","esp_clip","upper_clip","oled_bridge",
 "hinge_guard_left","hinge_guard_right"];
hardware_parts=["motor","drive_nut","battery_holder","esp","power_board",
 "bridge_board","oled","button","acrylic","hinge_pin","inserts_fixed","inserts_lid",
 "battery_connector",
 "motor_pads","board_pads"];
// All holes below are pilot/clearance geometry, not modelled screw threads.
module feature(axis,center,d,h,kind="clearance",details=[]) {
 if(!is_undef($export_features) && $export_features)
  echo(["TL_FEATURE",$feature_part,axis,center,d,h,kind,details]);
}
// These wrappers keep CAD feature dimensions attached to the geometry that uses
// them. The boolean operation is part of the export, not guessed from a mesh.
module nominal_difference() {
 base=is_undef($feature_operation)?"solid":$feature_operation;
 difference() {
  let($feature_operation=base) children(0);
  if($children>1) for(i=[1:$children-1])
   let($feature_operation=base=="solid"?"cut":"solid") children(i);
 }
}
module cube_at(position,size) {
 feature("BOX",position,0,0,"box",[size,is_undef($feature_operation)?"solid":$feature_operation]);
 translate(position) cube(size);
}
module zhole(x,y,z,d,h) {
 feature("Z",[x,y,z],d,h,is_undef($feature_kind)?(d<2?"pilot":"clearance"):$feature_kind);
 translate([x,y,z]) cylinder(d=d,h=h);
}
module yrod(x,y,z,d,h) { translate([x,y,z]) rotate([-90,0,0]) cylinder(d=d,h=h); }
module xrod(x,y,z,d,h) { translate([x,y,z]) rotate([0,90,0]) cylinder(d=d,h=h); }
module yhole(x,y,z,d,h,kind="clearance") { feature("Y",[x,y,z],d,h,kind); yrod(x,y,z,d,h); }
module xhole(x,y,z,d,h,kind="clearance") { feature("X",[x,y,z],d,h,kind); xrod(x,y,z,d,h); }
module countersink(x,y,z,d1,d2,h) {
 feature("Z",[x,y,z],d1,h,"countersink",[d2]);
 translate([x,y,z]) cylinder(d1=d1,d2=d2,h=h);
}
module rounded_rect(l,w,r) { offset(r=r) square([l-2*r,w-2*r],center=true); }
module lid_turn(a) { translate([0,hinge_y,hinge_z]) rotate([a,0,0]) translate([0,-hinge_y,-hinge_z]) children(); }
module pilot(xy,z0,z1,d=1.7) { let($feature_kind=d<2?"pilot":"clearance") zhole(xy[0],xy[1],z0,d,z1-z0); }
// main file
include <../../../cad/v3/assembly.scad>
view="metadata";
named("hinge_guard_right");
